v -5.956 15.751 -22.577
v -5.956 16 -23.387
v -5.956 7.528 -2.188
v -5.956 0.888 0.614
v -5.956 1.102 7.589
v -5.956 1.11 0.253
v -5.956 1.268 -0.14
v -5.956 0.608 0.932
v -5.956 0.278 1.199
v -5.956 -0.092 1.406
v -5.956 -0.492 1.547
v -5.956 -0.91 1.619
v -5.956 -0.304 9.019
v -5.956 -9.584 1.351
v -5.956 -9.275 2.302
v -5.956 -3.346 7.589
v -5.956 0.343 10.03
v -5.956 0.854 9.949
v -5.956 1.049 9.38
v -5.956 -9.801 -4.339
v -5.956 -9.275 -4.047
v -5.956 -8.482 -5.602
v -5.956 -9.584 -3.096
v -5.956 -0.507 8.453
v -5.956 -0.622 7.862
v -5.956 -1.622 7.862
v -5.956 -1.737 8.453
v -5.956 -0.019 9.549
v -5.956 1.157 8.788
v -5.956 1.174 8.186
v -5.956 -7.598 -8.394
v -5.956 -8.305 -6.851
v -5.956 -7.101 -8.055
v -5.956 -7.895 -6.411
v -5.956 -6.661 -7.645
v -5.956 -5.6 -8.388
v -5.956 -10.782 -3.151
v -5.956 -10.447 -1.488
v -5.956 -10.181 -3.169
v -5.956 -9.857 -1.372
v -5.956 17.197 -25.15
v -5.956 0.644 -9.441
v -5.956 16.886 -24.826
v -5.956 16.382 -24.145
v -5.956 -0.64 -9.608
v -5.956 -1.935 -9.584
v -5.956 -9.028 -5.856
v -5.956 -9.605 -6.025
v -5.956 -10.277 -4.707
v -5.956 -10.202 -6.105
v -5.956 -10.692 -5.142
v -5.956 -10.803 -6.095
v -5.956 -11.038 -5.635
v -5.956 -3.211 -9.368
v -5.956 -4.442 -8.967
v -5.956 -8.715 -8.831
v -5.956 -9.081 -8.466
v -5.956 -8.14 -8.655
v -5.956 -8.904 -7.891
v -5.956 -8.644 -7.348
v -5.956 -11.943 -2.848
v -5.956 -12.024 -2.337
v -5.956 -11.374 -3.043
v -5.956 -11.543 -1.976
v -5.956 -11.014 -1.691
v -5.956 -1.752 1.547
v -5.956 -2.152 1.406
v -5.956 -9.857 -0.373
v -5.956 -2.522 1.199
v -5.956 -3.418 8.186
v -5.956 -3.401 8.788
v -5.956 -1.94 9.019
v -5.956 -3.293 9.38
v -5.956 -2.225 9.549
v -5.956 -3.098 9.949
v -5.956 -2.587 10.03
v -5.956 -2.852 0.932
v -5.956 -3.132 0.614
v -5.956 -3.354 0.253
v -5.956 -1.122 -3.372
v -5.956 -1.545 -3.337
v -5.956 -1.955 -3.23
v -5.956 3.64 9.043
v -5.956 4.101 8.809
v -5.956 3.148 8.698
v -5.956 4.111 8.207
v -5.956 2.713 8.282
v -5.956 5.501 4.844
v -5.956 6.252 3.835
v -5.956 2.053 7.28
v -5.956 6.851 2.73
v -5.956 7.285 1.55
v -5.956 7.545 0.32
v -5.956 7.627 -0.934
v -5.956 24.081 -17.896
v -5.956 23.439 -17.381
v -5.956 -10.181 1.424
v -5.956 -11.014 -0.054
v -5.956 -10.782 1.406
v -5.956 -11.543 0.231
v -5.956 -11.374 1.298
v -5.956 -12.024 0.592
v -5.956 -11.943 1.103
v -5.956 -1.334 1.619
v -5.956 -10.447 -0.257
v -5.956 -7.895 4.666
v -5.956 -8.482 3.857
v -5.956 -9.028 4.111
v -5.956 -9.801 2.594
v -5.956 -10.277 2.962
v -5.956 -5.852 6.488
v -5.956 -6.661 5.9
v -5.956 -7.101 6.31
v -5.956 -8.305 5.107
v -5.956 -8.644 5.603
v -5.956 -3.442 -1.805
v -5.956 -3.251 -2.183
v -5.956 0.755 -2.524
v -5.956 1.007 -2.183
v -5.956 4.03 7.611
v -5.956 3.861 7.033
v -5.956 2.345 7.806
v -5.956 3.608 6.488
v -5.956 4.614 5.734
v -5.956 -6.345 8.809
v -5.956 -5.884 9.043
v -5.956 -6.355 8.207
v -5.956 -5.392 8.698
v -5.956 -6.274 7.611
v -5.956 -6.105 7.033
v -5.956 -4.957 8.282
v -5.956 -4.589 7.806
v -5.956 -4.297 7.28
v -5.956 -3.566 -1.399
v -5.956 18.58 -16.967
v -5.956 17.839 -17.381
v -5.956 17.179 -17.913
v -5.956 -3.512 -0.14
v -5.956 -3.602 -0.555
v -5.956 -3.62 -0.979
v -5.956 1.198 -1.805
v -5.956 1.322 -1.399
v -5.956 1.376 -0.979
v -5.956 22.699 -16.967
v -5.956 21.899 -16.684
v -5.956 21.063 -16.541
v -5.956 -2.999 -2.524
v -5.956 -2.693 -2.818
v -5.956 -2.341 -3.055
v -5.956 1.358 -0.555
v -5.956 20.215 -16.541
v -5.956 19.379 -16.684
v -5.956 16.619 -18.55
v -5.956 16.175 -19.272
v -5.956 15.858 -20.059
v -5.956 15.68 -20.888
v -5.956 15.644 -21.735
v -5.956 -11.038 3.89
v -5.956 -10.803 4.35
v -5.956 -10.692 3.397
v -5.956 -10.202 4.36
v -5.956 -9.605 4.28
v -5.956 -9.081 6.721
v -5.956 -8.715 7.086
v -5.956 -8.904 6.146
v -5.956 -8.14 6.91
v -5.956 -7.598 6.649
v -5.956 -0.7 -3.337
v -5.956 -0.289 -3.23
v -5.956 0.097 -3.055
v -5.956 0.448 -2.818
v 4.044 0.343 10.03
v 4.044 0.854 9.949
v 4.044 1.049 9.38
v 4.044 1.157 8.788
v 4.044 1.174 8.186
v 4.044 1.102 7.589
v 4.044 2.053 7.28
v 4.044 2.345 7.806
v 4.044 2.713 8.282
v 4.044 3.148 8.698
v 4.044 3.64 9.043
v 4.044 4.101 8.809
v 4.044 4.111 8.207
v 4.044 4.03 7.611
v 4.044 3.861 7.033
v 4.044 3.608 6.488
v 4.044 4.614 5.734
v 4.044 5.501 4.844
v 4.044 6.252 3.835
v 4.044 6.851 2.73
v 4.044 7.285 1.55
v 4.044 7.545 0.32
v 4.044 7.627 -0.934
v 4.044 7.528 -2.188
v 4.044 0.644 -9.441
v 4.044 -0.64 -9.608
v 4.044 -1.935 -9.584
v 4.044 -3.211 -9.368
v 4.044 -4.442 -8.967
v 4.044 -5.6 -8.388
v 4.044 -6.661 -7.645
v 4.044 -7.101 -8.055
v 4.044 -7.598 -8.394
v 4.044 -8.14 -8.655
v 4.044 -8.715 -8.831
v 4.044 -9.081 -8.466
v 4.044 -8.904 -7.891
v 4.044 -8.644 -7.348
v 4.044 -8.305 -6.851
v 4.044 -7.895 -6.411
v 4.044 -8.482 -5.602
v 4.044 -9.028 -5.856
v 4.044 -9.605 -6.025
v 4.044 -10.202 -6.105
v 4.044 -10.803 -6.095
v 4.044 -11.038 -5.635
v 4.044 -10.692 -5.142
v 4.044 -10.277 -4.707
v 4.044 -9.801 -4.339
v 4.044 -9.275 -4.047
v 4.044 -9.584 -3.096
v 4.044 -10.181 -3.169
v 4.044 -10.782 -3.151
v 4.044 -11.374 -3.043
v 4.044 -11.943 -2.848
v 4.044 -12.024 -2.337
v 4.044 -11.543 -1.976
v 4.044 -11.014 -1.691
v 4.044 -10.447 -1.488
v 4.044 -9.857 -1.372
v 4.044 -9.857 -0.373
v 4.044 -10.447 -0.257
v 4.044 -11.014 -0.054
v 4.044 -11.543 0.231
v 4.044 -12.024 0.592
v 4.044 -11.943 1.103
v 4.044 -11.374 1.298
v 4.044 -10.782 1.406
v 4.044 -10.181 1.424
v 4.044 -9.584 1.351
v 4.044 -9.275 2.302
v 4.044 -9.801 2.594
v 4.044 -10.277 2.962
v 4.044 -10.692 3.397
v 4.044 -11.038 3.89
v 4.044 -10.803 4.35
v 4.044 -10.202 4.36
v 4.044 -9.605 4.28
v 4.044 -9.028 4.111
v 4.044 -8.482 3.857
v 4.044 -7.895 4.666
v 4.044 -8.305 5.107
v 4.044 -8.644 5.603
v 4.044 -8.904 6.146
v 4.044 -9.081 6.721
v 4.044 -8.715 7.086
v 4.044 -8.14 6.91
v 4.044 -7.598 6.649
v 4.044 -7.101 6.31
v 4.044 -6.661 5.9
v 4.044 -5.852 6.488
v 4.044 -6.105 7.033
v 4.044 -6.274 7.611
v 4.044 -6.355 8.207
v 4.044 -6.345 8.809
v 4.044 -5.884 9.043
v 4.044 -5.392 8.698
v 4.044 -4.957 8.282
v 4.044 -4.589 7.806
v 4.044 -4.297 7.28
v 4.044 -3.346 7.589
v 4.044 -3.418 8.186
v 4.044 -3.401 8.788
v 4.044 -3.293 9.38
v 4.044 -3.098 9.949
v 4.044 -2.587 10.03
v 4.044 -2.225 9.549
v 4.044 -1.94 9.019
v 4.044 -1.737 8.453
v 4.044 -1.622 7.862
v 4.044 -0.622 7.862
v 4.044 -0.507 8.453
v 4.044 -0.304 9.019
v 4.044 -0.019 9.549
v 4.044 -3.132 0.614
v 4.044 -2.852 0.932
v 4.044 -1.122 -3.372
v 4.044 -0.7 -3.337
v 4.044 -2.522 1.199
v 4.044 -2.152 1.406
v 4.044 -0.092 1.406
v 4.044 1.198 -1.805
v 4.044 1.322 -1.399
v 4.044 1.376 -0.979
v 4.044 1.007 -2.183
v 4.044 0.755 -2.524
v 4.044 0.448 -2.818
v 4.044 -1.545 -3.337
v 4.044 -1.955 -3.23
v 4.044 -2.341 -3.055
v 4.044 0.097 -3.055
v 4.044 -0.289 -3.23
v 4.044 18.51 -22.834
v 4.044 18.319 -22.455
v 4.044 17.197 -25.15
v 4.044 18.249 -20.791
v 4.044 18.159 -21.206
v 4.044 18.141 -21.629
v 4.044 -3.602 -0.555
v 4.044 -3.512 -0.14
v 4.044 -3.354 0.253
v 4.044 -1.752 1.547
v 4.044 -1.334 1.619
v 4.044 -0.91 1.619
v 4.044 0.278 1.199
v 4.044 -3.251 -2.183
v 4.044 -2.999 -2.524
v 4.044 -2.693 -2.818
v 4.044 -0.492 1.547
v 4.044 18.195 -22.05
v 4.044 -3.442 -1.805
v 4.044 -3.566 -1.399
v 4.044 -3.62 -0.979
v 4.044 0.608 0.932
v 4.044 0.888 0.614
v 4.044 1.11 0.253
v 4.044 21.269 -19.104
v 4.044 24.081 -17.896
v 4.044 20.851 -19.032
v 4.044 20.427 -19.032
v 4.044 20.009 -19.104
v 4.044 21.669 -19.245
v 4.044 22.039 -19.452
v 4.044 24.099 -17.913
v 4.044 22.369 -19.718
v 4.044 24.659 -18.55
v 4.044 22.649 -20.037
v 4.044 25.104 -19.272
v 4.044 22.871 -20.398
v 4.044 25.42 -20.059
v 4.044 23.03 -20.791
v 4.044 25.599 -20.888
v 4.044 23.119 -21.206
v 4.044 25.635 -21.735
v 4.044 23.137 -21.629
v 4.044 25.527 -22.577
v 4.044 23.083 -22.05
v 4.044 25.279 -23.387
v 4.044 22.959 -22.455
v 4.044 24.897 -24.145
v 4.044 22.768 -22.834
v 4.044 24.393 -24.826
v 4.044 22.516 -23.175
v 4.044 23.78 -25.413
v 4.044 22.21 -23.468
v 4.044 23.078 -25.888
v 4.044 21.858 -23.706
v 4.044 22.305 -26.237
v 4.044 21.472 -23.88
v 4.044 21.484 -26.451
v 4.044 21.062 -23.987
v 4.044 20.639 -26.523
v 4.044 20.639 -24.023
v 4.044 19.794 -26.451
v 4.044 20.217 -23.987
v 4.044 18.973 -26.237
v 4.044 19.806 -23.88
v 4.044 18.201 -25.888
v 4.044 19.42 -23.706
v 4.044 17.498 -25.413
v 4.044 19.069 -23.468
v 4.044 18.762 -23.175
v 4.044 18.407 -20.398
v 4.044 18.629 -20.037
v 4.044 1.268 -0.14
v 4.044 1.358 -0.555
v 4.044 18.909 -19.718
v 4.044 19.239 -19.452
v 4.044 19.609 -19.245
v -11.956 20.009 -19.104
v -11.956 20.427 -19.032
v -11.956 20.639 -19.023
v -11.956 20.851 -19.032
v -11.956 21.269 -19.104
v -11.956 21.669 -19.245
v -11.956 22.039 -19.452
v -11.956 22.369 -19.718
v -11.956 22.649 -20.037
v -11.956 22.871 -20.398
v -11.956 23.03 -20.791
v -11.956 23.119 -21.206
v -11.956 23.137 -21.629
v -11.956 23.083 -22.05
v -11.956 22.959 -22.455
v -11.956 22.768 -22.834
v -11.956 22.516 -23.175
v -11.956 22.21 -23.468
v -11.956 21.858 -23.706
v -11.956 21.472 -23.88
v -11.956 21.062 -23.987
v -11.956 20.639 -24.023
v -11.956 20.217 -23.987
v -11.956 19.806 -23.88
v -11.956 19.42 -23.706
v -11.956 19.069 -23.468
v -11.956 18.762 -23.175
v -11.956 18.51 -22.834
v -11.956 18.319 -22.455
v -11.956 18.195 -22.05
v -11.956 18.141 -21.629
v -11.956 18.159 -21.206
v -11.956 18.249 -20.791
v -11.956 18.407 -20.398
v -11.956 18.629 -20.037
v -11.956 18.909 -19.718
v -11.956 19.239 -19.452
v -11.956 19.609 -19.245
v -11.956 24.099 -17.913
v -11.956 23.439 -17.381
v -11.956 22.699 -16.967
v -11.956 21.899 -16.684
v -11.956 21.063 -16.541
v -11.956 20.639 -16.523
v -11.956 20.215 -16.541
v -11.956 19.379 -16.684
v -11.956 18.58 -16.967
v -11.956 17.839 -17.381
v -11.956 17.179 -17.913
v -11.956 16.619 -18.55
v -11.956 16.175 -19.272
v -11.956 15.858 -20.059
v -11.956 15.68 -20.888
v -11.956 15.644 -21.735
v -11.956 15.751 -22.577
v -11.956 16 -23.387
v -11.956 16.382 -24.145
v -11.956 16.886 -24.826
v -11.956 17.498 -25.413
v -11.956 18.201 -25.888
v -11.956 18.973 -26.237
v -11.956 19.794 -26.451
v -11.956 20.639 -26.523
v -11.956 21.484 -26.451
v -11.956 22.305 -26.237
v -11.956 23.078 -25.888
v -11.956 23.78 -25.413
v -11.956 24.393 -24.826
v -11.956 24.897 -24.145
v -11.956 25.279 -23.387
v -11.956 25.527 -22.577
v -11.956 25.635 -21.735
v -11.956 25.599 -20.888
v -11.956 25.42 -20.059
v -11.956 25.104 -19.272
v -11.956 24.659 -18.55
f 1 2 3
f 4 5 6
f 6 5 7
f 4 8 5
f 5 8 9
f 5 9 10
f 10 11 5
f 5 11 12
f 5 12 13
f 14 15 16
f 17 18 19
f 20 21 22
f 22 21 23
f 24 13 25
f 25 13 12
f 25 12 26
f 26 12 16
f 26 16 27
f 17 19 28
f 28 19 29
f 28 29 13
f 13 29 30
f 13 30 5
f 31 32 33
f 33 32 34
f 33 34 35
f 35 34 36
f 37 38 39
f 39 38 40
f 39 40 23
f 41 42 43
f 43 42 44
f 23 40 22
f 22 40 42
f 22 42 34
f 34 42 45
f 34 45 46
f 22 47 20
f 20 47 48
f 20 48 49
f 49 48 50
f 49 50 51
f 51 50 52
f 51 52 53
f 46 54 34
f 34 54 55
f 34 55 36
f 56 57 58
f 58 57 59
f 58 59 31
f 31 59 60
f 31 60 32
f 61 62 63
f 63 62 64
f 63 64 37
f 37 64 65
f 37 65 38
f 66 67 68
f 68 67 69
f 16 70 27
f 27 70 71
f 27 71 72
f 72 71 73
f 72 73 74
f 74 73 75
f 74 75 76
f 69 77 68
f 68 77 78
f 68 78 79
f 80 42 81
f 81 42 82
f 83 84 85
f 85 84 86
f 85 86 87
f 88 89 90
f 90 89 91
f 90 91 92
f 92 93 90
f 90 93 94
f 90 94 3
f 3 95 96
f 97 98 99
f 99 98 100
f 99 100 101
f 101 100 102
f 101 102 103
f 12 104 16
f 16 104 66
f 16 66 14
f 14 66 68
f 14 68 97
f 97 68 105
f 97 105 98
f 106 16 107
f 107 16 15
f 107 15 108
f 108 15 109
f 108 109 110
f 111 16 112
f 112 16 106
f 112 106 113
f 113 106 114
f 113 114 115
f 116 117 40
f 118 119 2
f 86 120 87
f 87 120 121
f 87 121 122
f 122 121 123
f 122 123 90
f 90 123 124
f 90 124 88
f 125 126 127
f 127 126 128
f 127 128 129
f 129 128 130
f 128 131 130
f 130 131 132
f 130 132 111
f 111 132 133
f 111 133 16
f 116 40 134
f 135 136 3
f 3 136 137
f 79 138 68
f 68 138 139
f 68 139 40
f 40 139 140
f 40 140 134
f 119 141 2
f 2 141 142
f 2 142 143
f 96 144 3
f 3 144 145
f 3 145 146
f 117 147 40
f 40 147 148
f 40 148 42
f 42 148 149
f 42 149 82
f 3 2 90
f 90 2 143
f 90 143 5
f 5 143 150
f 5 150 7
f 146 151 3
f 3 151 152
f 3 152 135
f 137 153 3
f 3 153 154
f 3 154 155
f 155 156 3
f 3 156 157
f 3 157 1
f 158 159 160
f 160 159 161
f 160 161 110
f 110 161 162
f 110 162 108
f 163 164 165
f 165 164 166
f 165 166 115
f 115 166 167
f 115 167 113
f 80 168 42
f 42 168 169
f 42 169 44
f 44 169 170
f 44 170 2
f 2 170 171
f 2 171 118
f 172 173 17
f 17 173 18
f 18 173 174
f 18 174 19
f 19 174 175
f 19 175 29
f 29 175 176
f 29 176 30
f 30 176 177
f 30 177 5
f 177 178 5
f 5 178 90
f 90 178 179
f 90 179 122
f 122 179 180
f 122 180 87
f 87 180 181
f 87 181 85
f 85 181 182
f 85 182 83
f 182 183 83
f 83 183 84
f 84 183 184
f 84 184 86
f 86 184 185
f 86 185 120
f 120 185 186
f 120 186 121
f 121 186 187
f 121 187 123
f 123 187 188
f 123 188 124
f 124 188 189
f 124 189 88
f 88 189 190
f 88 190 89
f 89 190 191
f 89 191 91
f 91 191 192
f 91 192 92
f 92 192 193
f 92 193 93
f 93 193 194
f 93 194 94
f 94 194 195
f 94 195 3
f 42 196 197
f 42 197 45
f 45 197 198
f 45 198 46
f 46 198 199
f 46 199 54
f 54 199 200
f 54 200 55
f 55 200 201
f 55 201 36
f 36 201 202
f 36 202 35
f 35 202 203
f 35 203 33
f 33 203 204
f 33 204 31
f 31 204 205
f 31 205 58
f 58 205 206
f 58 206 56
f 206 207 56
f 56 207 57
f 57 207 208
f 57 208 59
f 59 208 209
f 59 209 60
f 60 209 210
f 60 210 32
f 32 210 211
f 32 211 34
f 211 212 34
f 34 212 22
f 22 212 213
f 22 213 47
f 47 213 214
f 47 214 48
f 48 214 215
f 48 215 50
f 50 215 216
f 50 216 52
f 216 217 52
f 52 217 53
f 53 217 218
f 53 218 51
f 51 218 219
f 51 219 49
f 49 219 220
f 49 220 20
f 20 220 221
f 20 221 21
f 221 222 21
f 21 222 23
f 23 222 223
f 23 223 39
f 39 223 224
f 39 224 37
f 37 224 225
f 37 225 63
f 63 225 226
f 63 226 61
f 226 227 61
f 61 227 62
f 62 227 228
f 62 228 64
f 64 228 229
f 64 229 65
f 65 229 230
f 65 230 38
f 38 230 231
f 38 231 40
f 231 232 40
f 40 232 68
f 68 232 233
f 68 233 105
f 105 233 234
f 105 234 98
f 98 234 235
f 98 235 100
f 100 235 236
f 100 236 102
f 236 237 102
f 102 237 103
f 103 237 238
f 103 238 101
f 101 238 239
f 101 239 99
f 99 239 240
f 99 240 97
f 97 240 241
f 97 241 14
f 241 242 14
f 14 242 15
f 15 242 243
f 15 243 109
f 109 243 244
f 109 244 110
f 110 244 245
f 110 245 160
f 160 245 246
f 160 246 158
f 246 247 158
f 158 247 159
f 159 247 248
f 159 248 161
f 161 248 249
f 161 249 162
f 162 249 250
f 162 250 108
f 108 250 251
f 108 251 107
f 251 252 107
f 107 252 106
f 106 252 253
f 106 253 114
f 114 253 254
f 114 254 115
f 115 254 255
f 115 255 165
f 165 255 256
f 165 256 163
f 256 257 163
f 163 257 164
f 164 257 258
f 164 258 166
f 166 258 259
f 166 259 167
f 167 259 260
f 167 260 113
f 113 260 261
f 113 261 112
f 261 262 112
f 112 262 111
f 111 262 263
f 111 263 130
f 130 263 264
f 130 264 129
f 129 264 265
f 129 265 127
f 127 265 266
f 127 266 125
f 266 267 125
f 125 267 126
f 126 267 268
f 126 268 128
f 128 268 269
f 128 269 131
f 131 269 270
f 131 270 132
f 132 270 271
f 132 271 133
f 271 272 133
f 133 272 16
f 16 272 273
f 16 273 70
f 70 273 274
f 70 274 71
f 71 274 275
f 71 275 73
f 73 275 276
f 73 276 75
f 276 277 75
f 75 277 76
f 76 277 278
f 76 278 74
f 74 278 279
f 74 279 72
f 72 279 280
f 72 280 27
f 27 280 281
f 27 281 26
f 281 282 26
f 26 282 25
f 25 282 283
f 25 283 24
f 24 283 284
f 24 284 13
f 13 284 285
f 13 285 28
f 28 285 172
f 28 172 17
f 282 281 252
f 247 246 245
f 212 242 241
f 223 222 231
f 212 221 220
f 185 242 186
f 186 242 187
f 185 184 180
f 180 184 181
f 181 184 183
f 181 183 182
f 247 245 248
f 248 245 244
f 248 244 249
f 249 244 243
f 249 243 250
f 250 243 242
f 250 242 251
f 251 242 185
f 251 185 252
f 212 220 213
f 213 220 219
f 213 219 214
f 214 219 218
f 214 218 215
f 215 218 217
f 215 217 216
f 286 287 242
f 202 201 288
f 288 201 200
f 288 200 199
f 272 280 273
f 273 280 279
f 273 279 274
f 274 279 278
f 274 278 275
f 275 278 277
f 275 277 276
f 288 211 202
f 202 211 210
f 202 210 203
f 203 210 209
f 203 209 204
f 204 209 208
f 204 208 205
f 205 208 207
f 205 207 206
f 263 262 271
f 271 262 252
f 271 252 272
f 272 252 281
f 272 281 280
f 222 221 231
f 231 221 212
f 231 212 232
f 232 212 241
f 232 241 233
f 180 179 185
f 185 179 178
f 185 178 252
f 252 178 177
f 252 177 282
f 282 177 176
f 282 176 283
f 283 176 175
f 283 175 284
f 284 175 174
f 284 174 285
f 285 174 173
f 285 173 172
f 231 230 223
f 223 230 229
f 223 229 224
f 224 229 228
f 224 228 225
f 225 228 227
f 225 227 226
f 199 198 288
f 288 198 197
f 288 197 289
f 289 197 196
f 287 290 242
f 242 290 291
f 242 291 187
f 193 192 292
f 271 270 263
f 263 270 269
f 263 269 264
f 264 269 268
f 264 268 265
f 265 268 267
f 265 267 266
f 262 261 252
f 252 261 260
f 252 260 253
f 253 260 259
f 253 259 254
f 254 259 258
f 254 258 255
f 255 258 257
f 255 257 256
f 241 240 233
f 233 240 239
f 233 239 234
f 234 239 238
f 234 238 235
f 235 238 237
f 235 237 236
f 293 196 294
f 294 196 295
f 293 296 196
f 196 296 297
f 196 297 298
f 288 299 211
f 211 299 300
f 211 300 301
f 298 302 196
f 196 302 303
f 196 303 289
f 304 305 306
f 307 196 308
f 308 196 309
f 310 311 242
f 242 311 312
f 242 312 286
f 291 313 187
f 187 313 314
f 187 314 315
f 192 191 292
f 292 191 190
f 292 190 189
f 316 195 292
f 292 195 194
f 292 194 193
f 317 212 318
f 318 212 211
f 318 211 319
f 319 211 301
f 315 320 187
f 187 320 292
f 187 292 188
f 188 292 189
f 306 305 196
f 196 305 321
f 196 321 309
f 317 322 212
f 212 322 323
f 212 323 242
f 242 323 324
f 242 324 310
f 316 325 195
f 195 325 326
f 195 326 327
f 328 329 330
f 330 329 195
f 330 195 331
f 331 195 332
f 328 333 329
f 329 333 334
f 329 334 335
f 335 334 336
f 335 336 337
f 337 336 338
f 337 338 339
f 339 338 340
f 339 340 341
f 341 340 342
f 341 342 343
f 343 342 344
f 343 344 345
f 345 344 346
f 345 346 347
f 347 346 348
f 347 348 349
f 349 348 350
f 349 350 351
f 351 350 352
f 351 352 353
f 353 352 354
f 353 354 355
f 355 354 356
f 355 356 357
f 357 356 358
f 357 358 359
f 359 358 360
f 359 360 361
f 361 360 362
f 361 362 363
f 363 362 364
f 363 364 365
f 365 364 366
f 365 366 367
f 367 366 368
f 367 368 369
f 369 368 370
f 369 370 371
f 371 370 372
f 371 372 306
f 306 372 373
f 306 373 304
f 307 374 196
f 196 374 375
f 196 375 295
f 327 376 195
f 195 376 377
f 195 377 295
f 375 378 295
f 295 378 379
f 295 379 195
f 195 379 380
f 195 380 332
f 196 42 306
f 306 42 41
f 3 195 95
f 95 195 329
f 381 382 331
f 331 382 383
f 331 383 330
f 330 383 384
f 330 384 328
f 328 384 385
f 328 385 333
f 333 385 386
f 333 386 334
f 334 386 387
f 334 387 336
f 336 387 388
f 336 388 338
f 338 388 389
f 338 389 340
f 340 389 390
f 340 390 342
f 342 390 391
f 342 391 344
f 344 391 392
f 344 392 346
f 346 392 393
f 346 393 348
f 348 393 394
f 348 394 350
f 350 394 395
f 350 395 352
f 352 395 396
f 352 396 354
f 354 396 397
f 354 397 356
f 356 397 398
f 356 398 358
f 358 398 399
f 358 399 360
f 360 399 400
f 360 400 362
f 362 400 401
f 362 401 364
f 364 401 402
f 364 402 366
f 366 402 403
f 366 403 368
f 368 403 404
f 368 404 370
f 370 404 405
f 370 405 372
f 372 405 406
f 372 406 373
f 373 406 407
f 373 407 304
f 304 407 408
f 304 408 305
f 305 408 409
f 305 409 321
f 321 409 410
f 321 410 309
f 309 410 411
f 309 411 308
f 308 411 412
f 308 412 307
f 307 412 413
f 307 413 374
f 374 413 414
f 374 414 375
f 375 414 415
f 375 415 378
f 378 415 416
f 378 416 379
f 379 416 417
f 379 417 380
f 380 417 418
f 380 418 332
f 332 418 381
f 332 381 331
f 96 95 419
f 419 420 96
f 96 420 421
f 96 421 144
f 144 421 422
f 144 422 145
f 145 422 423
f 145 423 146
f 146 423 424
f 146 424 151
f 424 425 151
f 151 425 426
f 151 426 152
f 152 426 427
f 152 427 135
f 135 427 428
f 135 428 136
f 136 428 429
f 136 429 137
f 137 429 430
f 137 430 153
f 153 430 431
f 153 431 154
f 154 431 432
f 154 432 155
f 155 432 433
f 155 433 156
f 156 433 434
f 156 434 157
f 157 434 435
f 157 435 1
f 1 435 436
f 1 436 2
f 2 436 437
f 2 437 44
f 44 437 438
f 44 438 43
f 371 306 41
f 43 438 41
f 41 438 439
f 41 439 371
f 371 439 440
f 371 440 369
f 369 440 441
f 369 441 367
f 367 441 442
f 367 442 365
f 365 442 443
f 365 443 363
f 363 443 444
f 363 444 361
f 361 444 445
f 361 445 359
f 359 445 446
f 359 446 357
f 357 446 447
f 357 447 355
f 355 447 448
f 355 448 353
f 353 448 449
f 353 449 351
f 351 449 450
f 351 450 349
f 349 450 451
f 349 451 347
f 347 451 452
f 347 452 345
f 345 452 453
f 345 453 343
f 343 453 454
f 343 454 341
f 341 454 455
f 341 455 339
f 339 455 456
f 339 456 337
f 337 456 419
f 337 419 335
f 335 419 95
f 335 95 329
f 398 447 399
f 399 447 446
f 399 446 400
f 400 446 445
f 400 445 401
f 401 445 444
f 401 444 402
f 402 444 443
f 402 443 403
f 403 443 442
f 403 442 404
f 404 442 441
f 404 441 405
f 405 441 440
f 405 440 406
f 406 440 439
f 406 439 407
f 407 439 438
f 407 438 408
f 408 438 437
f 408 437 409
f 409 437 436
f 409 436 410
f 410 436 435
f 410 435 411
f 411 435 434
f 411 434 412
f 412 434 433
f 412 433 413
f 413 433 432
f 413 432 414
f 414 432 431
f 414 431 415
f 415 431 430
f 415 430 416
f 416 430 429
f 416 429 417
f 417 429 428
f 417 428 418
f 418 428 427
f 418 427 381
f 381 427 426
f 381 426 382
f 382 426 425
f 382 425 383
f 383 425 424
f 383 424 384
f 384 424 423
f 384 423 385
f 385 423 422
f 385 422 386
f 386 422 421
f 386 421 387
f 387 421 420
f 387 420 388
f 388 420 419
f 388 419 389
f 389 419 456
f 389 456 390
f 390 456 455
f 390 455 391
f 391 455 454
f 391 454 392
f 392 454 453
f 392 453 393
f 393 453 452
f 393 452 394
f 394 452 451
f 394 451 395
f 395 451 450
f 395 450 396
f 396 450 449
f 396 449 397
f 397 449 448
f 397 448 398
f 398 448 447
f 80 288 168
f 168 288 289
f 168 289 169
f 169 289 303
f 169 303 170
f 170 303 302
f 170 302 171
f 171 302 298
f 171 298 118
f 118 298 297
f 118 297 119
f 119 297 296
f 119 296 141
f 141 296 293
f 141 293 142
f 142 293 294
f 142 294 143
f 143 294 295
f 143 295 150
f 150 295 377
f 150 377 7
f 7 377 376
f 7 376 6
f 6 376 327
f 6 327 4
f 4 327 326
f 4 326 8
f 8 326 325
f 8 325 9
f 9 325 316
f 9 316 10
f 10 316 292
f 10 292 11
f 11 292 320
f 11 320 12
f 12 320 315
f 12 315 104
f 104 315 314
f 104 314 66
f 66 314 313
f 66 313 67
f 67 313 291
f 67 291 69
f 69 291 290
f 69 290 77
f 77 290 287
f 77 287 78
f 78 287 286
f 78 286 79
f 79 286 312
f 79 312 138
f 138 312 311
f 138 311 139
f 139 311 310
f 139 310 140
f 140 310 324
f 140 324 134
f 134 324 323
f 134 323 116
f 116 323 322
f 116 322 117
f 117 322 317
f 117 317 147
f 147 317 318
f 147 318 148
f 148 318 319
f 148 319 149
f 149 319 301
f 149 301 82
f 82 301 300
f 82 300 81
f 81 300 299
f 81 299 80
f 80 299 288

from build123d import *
from build123d.topology import SkipClean

# Parameters (mm, degrees)
SKETCH1_R           = 2.5
BOSS_EXTRUDE1_DEPTH = 10
SKETCH2_R           = 2.5
BOSS_EXTRUDE2_DEPTH = 10
SKETCH3_R           = 5
SKETCH3_R_2         = 2.5
BOSS_EXTRUDE3_DEPTH = 6
SKETCH4_R           = 2.5
CUT_EXTRUDE1_DEPTH  = 41.209967862
CUT_EXTRUDE2_DEPTH  = 41.209967862


with BuildPart() as part:
    # Sketch1 → Boss-Extrude1 (new body)
    with BuildSketch(Plane(origin=(4.043870029, 0, 0), x_dir=(0, 0, -1), z_dir=(1, 0, 0))):
        with BuildLine():
            ThreePointArc((-10.029541992, 0.342879069), (-9.019080639, -0.304016541), (-7.862233613, -0.622153359))
            ThreePointArc((-7.862233613, -0.622153359), (-7.876528296, -1.122077366), (-7.862233613, -1.622001374))
            ThreePointArc((-7.862233613, -1.622001374), (-9.019080639, -1.940138191), (-10.029541992, -2.587033801))
            ThreePointArc((-10.029541992, -2.587033801), (-9.992100042, -2.842856482), (-9.948655897, -3.097728508))
            ThreePointArc((-9.948655897, -3.097728508), (-8.787748306, -3.400713063), (-7.58921172, -3.345793765))
            ThreePointArc((-7.58921172, -3.345793765), (-7.448321757, -3.82566705), (-7.280241692, -4.296705735))
            ThreePointArc((-7.280241692, -4.296705735), (-8.282158911, -4.956757219), (-9.043263028, -5.884241235))
            ThreePointArc((-9.043263028, -5.884241235), (-8.928600062, -6.115972863), (-8.808522437, -6.344945585))
            ThreePointArc((-8.808522437, -6.344945585), (-7.610806331, -6.274360846), (-6.487901298, -5.851761317))
            ThreePointArc((-6.487901298, -5.851761317), (-6.20561798, -6.264610538), (-5.90020538, -6.660655353))
            ThreePointArc((-5.90020538, -6.660655353), (-6.649118154, -7.598011066), (-7.086362862, -8.715294889))
            ThreePointArc((-7.086362862, -8.715294889), (-6.905702889, -8.900251959), (-6.720745819, -9.080911932))
            ThreePointArc((-6.720745819, -9.080911932), (-5.603461996, -8.643667224), (-4.666106283, -7.89475445))
            ThreePointArc((-4.666106283, -7.89475445), (-4.270061468, -8.20016705), (-3.857212247, -8.482450368))
            ThreePointArc((-3.857212247, -8.482450368), (-4.279811776, -9.605355401), (-4.350396515, -10.803071507))
            ThreePointArc((-4.350396515, -10.803071507), (-4.121423793, -10.923149132), (-3.889692165, -11.037812099))
            ThreePointArc((-3.889692165, -11.037812099), (-2.962208149, -10.276707981), (-2.302156665, -9.274790762))
            ThreePointArc((-2.302156665, -9.274790762), (-1.83111798, -9.442870827), (-1.351244695, -9.583760791))
            ThreePointArc((-1.351244695, -9.583760791), (-1.406163992, -10.782297376), (-1.103179437, -11.943204968))
            ThreePointArc((-1.103179437, -11.943204968), (-0.848307411, -11.986649113), (-0.592484731, -12.024091063))
            ThreePointArc((-0.592484731, -12.024091063), (0.054410879, -11.01362971), (0.372547697, -9.856782684))
            ThreePointArc((0.372547697, -9.856782684), (0.872471704, -9.871077366), (1.372395712, -9.856782684))
            ThreePointArc((1.372395712, -9.856782684), (1.690532529, -11.01362971), (2.337428139, -12.024091063))
            ThreePointArc((2.337428139, -12.024091063), (2.59325082, -11.986649113), (2.848122846, -11.943204968))
            ThreePointArc((2.848122846, -11.943204968), (3.151107401, -10.782297376), (3.096188103, -9.583760791))
            ThreePointArc((3.096188103, -9.583760791), (3.576061388, -9.442870827), (4.047100073, -9.274790762))
            ThreePointArc((4.047100073, -9.274790762), (4.707151558, -10.276707981), (5.634635573, -11.037812099))
            ThreePointArc((5.634635573, -11.037812099), (5.866367201, -10.923149132), (6.095339923, -10.803071507))
            ThreePointArc((6.095339923, -10.803071507), (6.024755184, -9.605355401), (5.602155655, -8.482450368))
            ThreePointArc((5.602155655, -8.482450368), (6.015004877, -8.20016705), (6.411049691, -7.89475445))
            ThreePointArc((6.411049691, -7.89475445), (7.348405404, -8.643667224), (8.465689227, -9.080911932))
            ThreePointArc((8.465689227, -9.080911932), (8.650646297, -8.900251959), (8.83130627, -8.715294889))
            ThreePointArc((8.83130627, -8.715294889), (8.394061563, -7.598011066), (7.645148788, -6.660655353))
            ThreePointArc((7.645148788, -6.660655353), (7.950561388, -6.264610538), (8.232844706, -5.851761317))
            ThreePointArc((8.232844706, -5.851761317), (9.355749739, -6.274360846), (10.553465846, -6.344945585))
            ThreePointArc((10.553465846, -6.344945585), (10.67354347, -6.115972863), (10.788206437, -5.884241235))
            ThreePointArc((10.788206437, -5.884241235), (10.02710232, -4.956757219), (9.0251851, -4.296705735))
            ThreePointArc((9.0251851, -4.296705735), (9.193265165, -3.82566705), (9.334155129, -3.345793765))
            ThreePointArc((9.334155129, -3.345793765), (10.532691714, -3.400713063), (11.693599306, -3.097728508))
            ThreePointArc((11.693599306, -3.097728508), (11.737043451, -2.842856482), (11.774485401, -2.587033801))
            ThreePointArc((11.774485401, -2.587033801), (10.764024048, -1.940138191), (9.607177022, -1.622001374))
            ThreePointArc((9.607177022, -1.622001374), (9.621471704, -1.122077366), (9.607177022, -0.622153359))
            ThreePointArc((9.607177022, -0.622153359), (10.764024048, -0.304016541), (11.774485401, 0.342879069))
            ThreePointArc((11.774485401, 0.342879069), (11.737043451, 0.598701749), (11.693599306, 0.853573775))
            ThreePointArc((11.693599306, 0.853573775), (10.532691714, 1.156558331), (9.334155129, 1.101639033))
            ThreePointArc((9.334155129, 1.101639033), (9.193265165, 1.581512318), (9.0251851, 2.052551003))
            ThreePointArc((9.0251851, 2.052551003), (10.02710232, 2.712602487), (10.788206437, 3.640086503))
            ThreePointArc((10.788206437, 3.640086503), (10.67354347, 3.871818131), (10.553465846, 4.100790853))
            ThreePointArc((10.553465846, 4.100790853), (9.355749739, 4.030206114), (8.232844706, 3.607606585))
            ThreePointArc((8.232844706, 3.607606585), (7.950561388, 4.020455806), (7.645148788, 4.416500621))
            ThreePointArc((7.645148788, 4.416500621), (8.394061563, 5.353856334), (8.83130627, 6.471140157))
            ThreePointArc((8.83130627, 6.471140157), (8.650646297, 6.656097227), (8.465689227, 6.8367572))
            ThreePointArc((8.465689227, 6.8367572), (7.348405404, 6.399512492), (6.411049691, 5.650599718))
            ThreePointArc((6.411049691, 5.650599718), (6.015004877, 5.956012318), (5.602155655, 6.238295636))
            ThreePointArc((5.602155655, 6.238295636), (6.024755184, 7.361200669), (6.095339923, 8.558916775))
            ThreePointArc((6.095339923, 8.558916775), (5.866367201, 8.6789944), (5.634635573, 8.793657366))
            ThreePointArc((5.634635573, 8.793657366), (4.707151558, 8.032553249), (4.047100073, 7.03063603))
            ThreePointArc((4.047100073, 7.03063603), (3.576061388, 7.198716095), (3.096188103, 7.339606058))
            ThreePointArc((3.096188103, 7.339606058), (3.151107401, 8.538142644), (2.848122846, 9.699050235))
            ThreePointArc((2.848122846, 9.699050235), (2.59325082, 9.74249438), (2.337428139, 9.779936331))
            ThreePointArc((2.337428139, 9.779936331), (1.690532529, 8.769474978), (1.372395712, 7.612627952))
            ThreePointArc((1.372395712, 7.612627952), (0.872471704, 7.626922634), (0.372547697, 7.612627952))
            ThreePointArc((0.372547697, 7.612627952), (0.054410879, 8.769474978), (-0.592484731, 9.779936331))
            ThreePointArc((-0.592484731, 9.779936331), (-0.848307411, 9.74249438), (-1.103179437, 9.699050235))
            ThreePointArc((-1.103179437, 9.699050235), (-1.406163992, 8.538142644), (-1.351244695, 7.339606058))
            ThreePointArc((-1.351244695, 7.339606058), (-1.83111798, 7.198716095), (-2.302156665, 7.03063603))
            ThreePointArc((-2.302156665, 7.03063603), (-2.962208149, 8.032553249), (-3.889692165, 8.793657366))
            ThreePointArc((-3.889692165, 8.793657366), (-4.121423793, 8.6789944), (-4.350396515, 8.558916775))
            ThreePointArc((-4.350396515, 8.558916775), (-4.279811776, 7.361200669), (-3.857212247, 6.238295636))
            ThreePointArc((-3.857212247, 6.238295636), (-4.270061468, 5.956012318), (-4.666106283, 5.650599718))
            ThreePointArc((-4.666106283, 5.650599718), (-5.603461996, 6.399512492), (-6.720745819, 6.8367572))
            ThreePointArc((-6.720745819, 6.8367572), (-6.905702889, 6.656097227), (-7.086362862, 6.471140157))
            ThreePointArc((-7.086362862, 6.471140157), (-6.649118154, 5.353856334), (-5.90020538, 4.416500621))
            ThreePointArc((-5.90020538, 4.416500621), (-6.20561798, 4.020455806), (-6.487901298, 3.607606585))
            ThreePointArc((-6.487901298, 3.607606585), (-7.610806331, 4.030206114), (-8.808522437, 4.100790853))
            ThreePointArc((-8.808522437, 4.100790853), (-8.928600062, 3.871818131), (-9.043263028, 3.640086503))
            ThreePointArc((-9.043263028, 3.640086503), (-8.282158911, 2.712602487), (-7.280241692, 2.052551003))
            ThreePointArc((-7.280241692, 2.052551003), (-7.448321757, 1.581512318), (-7.58921172, 1.101639033))
            ThreePointArc((-7.58921172, 1.101639033), (-8.787748306, 1.156558331), (-9.948655897, 0.853573775))
            ThreePointArc((-9.948655897, 0.853573775), (-9.992100042, 0.598701749), (-10.029541992, 0.342879069))
        make_face()
        with Locations(Location((0.872471704, -1.122077366, 0), (0, 0, 180))):
            Circle(SKETCH1_R, mode=Mode.SUBTRACT)
    extrude(amount=-BOSS_EXTRUDE1_DEPTH)

    # Sketch2 → Boss-Extrude2 (add)
    with BuildSketch(Plane(origin=(4.043870029, 0, 0), x_dir=(0, 0, -1), z_dir=(1, 0, 0))):
        with BuildLine():
            Line((-2.754400151, 2.319695512), (17.89623712, 24.080926643))
            ThreePointArc((17.89623712, 24.080926643), (24.964881853, 24.266025619), (25.14998083, 17.197380886))
            Line((25.14998083, 17.197380886), (4.499343559, -4.563850245))
            ThreePointArc((4.499343559, -4.563850245), (-2.569301174, -4.748949221), (-2.754400151, 2.319695512))
        make_face()
        with Locations((21.523108975, 20.639153764)):
            Circle(SKETCH2_R, mode=Mode.SUBTRACT)
    extrude(amount=-BOSS_EXTRUDE2_DEPTH)

    # Sketch3 → Boss-Extrude3 (add)
    with BuildSketch(Plane.ZY.offset(5.956129971)):
        with Locations(Location((-21.523108975, 20.639153764, 0), (0, 0, 223.5))):
            Circle(SKETCH3_R)
        with Locations(Location((-21.523108975, 20.639153764, 0), (0, 0, 180))):
            Circle(SKETCH3_R_2, mode=Mode.SUBTRACT)
    extrude(amount=BOSS_EXTRUDE3_DEPTH)

    # Sketch4 → Cut-Extrude1 (cut, through all)
    with BuildSketch(Plane(origin=(4.043870029, 0, 0), x_dir=(0, 0, -1), z_dir=(1, 0, 0))):
        with Locations((0.872471704, -1.122077366)):
            Circle(SKETCH4_R)
    extrude(amount=-CUT_EXTRUDE1_DEPTH, mode=Mode.SUBTRACT)

    # Sketch6 → Cut-Extrude2 (cut, through all)
    with SkipClean():  # the faces are left unmerged after this step: merging them gives an invalid solid
        with BuildSketch(Plane(origin=(4.043870029, 0, 0), x_dir=(0, 0, -1), z_dir=(1, 0, 0))):
            with BuildLine():
                Line((4.579688985, 10.048212881), (2.187631015, 7.527509733))
                ThreePointArc((2.187631015, 7.527509733), (-2.46576826, 6.965020688), (-6.16100093, 4.08131227))
                Line((-6.16100093, 4.08131227), (-8.58915512, 5.877669916))
                ThreePointArc((-8.58915512, 5.877669916), (-2.68093011, 10.098091069), (4.579688985, 10.048212881))
            make_face()
            with BuildLine():
                Line((11.833432695, 3.164667124), (9.441374725, 0.643963976))
                ThreePointArc((9.441374725, 0.643963976), (9.424184018, -2.969566881), (7.948146758, -6.267932352))
                Line((7.948146758, -6.267932352), (10.39087042, -8.044427405))
                ThreePointArc((10.39087042, -8.044427405), (12.54560297, -2.624359175), (11.833432695, 3.164667124))
            make_face()
        extrude(amount=-CUT_EXTRUDE2_DEPTH, mode=Mode.SUBTRACT)


solid = part.part
